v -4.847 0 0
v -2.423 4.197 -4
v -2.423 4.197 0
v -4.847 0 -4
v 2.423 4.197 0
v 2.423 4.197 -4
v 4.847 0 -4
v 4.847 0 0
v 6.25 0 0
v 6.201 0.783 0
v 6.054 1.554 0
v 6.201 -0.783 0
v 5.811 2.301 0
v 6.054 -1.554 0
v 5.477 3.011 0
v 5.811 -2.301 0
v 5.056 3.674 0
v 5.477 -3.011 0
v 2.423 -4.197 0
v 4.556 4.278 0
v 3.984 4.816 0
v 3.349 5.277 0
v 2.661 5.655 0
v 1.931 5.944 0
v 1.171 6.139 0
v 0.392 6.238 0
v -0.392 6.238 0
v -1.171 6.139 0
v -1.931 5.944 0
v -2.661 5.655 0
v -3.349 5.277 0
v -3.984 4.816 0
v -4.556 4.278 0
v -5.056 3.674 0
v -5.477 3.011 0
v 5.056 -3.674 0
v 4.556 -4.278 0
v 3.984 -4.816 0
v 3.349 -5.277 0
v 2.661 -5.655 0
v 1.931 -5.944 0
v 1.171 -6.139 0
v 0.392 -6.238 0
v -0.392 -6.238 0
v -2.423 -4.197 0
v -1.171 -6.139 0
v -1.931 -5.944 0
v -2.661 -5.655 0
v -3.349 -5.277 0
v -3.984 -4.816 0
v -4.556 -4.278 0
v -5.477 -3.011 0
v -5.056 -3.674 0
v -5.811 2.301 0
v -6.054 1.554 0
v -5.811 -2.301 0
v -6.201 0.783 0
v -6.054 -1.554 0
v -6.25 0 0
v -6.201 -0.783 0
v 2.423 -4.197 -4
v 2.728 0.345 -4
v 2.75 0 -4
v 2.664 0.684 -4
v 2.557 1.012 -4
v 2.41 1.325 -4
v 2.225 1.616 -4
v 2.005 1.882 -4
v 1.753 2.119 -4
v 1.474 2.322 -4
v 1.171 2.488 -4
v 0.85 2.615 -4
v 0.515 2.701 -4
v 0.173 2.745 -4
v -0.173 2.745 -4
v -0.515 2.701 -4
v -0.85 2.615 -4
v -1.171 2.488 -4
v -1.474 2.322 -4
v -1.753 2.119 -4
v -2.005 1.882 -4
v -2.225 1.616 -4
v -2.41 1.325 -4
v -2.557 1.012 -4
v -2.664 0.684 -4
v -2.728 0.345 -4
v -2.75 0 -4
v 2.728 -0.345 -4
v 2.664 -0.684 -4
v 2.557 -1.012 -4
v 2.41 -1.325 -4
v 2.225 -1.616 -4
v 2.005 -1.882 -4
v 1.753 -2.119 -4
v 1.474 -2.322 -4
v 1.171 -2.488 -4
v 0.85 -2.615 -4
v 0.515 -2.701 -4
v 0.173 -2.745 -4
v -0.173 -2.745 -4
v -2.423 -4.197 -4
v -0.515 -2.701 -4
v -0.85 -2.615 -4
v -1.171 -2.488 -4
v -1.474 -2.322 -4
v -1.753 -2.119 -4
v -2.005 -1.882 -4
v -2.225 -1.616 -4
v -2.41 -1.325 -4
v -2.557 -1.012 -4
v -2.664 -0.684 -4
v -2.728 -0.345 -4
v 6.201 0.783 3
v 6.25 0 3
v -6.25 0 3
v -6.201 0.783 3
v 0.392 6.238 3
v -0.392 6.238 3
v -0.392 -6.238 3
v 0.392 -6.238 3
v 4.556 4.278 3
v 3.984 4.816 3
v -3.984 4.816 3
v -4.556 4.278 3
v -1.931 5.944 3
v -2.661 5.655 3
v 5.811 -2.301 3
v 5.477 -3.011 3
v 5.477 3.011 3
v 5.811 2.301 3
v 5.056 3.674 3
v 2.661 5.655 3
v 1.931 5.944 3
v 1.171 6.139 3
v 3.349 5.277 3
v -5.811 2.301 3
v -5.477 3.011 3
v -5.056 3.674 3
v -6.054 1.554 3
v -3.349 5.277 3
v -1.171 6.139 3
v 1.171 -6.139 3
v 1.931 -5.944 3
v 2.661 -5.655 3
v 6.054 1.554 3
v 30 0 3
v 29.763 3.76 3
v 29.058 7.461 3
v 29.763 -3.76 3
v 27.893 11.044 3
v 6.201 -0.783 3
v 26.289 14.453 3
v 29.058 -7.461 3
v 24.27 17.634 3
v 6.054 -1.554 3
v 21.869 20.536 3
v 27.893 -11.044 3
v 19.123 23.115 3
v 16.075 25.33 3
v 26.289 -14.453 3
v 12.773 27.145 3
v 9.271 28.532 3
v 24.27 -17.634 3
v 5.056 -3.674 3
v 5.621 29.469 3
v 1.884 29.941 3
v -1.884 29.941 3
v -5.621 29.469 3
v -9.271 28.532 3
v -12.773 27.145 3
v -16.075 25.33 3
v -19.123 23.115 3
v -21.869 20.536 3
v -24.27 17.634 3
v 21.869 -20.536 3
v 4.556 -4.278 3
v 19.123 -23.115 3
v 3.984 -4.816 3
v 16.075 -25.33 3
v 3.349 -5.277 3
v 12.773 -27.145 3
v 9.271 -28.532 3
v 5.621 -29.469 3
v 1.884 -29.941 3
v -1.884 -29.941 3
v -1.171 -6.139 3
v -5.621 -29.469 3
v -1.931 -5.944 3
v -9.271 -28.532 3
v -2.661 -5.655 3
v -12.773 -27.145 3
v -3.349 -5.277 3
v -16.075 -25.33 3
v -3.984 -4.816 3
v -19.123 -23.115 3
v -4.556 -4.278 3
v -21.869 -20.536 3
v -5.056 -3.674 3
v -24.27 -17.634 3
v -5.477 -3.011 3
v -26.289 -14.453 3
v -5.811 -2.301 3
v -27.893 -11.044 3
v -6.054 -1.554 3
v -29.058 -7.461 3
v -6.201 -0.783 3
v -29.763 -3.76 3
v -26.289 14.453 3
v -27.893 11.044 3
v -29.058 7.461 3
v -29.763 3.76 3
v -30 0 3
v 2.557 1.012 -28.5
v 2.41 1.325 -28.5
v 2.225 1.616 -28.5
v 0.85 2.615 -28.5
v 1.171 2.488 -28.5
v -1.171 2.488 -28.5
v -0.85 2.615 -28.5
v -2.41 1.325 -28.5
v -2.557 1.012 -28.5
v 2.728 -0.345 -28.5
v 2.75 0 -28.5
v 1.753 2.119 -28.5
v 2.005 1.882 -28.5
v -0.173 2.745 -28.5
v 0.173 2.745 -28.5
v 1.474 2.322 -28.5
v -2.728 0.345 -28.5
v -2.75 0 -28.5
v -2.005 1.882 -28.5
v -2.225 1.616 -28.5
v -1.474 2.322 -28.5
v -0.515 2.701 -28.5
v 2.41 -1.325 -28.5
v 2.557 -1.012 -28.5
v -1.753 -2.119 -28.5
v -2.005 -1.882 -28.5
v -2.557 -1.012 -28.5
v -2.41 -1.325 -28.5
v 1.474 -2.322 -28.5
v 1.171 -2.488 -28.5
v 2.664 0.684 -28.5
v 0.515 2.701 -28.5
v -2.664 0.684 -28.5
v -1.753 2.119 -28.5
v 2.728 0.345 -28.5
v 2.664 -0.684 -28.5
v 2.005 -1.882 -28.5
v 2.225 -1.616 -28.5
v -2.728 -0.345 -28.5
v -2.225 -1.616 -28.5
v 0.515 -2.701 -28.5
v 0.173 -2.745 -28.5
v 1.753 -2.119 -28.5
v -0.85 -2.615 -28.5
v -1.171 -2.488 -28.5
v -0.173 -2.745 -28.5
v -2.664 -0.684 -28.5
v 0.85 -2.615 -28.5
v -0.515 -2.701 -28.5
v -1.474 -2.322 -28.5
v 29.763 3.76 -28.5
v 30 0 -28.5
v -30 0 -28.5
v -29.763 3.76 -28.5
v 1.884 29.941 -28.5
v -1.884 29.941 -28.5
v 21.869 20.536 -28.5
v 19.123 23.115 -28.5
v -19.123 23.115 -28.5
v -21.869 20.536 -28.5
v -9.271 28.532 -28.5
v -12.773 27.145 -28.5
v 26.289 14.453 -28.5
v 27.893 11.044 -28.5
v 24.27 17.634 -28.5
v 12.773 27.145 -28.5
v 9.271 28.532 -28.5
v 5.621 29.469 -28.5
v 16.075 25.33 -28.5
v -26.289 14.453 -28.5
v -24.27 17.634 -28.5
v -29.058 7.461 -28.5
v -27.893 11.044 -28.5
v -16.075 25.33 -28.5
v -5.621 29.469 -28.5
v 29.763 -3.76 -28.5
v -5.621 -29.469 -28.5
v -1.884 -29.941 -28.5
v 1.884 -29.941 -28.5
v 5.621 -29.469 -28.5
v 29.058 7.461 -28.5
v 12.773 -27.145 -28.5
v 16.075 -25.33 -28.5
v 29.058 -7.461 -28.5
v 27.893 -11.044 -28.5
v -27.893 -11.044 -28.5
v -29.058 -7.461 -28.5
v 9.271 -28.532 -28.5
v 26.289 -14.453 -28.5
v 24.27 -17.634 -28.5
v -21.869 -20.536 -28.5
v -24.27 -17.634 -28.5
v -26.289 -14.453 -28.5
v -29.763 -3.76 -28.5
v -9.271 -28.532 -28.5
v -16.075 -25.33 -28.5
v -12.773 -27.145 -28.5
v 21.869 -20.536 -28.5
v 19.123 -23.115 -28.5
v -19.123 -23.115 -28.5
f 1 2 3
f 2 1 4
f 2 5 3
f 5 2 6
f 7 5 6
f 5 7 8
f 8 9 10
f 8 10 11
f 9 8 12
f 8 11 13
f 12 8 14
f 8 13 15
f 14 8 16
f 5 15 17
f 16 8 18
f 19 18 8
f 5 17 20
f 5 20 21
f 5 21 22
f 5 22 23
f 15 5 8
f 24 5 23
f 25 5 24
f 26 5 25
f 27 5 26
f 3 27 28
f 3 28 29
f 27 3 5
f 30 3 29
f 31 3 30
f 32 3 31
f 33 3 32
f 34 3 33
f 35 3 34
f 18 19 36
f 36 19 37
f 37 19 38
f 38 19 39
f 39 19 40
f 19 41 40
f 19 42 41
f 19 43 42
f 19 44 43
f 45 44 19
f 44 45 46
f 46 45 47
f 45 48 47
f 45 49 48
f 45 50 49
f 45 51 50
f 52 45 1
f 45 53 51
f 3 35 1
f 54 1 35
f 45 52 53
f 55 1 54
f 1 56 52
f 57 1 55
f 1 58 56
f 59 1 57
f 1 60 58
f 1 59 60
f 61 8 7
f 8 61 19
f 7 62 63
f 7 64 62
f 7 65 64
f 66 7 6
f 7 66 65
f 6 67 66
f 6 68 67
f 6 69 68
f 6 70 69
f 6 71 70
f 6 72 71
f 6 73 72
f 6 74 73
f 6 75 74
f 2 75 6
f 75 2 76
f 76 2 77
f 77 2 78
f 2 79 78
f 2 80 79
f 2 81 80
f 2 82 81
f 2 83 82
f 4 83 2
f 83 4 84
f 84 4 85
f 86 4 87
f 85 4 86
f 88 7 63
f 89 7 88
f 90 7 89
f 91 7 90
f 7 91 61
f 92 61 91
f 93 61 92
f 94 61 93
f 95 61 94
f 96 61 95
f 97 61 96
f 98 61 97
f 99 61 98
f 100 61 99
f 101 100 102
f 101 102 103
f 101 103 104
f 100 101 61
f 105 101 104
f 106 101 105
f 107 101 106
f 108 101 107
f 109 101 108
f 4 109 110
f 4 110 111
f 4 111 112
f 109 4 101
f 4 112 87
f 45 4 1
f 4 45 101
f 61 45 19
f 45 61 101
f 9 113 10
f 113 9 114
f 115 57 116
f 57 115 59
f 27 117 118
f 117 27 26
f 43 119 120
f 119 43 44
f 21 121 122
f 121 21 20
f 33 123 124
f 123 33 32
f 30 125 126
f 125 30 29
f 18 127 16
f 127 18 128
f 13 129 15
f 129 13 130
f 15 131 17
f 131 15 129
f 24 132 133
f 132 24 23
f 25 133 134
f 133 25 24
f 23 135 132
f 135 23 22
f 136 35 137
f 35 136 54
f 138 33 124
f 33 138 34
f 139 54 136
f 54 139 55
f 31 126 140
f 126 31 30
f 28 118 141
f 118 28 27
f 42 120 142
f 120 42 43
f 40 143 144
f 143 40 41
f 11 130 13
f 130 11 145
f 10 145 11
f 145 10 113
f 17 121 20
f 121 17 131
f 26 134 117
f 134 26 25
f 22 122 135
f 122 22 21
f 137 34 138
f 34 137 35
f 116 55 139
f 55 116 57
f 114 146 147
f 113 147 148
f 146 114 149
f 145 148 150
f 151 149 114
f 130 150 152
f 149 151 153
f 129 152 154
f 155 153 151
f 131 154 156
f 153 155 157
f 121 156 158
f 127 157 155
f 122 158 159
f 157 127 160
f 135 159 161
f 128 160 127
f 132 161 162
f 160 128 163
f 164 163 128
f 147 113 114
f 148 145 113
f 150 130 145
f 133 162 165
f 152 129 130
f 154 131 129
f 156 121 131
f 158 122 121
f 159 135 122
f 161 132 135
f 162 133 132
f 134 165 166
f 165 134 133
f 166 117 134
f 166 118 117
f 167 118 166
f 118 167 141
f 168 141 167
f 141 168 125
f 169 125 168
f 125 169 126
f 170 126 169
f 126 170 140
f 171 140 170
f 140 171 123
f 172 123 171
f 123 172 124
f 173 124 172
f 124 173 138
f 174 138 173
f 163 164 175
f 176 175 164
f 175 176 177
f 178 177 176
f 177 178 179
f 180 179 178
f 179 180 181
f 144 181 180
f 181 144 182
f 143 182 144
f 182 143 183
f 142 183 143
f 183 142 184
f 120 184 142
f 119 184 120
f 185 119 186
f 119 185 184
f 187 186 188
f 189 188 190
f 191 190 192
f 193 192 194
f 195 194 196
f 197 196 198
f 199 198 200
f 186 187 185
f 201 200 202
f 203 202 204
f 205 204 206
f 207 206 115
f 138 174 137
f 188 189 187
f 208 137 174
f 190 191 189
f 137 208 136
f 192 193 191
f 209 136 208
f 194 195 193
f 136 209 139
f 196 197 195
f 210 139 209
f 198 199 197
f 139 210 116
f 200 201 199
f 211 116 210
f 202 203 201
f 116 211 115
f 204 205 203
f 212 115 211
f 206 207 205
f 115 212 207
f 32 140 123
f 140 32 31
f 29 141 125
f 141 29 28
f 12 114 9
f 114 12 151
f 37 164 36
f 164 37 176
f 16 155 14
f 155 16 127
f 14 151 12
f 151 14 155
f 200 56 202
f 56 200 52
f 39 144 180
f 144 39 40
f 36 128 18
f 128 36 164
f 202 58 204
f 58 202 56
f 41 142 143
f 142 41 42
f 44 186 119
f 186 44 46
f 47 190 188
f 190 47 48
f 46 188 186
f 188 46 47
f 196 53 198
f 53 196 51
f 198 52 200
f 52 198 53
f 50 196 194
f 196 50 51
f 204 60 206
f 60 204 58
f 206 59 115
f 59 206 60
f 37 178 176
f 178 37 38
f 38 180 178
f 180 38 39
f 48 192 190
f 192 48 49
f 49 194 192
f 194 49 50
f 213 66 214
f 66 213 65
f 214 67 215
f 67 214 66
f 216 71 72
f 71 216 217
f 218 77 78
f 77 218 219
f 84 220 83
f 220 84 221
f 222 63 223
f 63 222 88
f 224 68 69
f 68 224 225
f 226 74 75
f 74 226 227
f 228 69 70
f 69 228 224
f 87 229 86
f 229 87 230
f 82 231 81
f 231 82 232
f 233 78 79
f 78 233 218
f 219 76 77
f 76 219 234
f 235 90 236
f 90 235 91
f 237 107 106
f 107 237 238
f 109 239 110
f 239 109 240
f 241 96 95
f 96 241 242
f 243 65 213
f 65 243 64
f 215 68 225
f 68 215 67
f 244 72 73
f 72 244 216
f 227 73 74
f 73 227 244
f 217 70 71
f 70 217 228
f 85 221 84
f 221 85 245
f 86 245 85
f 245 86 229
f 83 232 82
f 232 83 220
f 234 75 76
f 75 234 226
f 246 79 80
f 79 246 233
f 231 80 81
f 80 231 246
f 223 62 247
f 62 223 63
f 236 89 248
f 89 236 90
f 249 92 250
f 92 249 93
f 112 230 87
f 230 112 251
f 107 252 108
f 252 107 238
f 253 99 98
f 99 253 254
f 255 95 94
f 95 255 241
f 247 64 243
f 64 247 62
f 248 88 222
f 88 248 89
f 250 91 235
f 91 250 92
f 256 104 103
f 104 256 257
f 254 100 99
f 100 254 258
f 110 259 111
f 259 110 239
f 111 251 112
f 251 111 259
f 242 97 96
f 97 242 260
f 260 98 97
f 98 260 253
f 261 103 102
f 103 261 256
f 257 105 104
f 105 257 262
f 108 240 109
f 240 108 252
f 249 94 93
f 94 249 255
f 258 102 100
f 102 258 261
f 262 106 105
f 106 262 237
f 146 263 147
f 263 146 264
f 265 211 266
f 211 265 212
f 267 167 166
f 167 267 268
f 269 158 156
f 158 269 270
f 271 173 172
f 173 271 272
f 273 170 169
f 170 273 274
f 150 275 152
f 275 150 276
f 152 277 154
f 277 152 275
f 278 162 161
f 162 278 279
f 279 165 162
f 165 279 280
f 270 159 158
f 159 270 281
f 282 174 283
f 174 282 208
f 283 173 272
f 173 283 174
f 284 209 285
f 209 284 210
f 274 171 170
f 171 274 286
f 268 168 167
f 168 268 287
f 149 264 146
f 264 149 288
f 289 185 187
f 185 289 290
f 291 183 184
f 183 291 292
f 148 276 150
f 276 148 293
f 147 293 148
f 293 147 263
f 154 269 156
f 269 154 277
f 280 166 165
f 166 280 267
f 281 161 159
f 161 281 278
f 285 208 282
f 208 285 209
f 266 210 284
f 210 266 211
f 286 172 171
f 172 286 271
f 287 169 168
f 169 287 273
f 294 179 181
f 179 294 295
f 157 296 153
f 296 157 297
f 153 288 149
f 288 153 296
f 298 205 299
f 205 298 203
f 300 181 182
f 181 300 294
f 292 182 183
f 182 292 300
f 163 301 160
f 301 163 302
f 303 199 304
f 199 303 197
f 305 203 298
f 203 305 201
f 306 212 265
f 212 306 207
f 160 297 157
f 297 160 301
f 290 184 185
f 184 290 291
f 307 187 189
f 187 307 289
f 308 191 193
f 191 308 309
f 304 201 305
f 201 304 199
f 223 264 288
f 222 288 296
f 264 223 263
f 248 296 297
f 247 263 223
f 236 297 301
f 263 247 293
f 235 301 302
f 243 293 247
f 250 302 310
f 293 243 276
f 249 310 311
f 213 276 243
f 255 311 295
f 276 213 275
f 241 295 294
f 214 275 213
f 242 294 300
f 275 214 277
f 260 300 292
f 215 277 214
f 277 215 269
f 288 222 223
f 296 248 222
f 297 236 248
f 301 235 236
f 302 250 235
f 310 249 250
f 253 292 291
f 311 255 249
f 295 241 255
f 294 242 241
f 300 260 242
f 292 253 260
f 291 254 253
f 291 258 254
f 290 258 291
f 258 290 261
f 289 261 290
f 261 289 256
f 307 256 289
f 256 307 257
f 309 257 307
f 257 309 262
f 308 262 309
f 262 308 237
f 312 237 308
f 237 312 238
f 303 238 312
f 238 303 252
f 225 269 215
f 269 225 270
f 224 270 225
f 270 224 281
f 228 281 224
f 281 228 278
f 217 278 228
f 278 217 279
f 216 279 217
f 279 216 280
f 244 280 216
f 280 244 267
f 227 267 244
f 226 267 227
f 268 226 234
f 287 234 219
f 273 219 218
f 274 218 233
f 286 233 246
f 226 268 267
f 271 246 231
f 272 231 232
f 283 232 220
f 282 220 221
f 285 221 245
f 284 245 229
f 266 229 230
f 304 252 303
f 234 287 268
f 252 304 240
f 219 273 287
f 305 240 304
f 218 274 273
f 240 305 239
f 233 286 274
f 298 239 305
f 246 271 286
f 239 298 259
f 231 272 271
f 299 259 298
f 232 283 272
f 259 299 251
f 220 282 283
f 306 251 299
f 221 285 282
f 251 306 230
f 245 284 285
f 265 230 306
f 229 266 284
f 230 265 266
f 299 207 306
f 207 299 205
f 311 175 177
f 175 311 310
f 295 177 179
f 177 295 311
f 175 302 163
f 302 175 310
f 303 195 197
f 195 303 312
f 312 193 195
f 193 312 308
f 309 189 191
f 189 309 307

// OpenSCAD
$fn = 50;


difference() {
	union() {
		translate(v = [0, 0, -28.5000000000]) {
			cylinder(h = 31.5000000000, r = 30.0000000000);
		}
	}
	union() {
		translate(v = [0, 0, 0]) {
			rotate(a = [0, 0, 0]) {
				difference() {
					union() {
						translate(v = [0, 0, -4]) {
							linear_extrude(height = 4) {
								polygon(points = [[4.8468000000, 0.0000000000], [2.4234000000, 4.1974519271], [-2.4234000000, 4.1974519271], [-4.8468000000, 0.0000000000], [-2.4234000000, -4.1974519271], [2.4234000000, -4.1974519271]]);
							}
						}
					}
					union();
				}
			}
		}
		#cylinder(h = 3, r = 6.2500000000);
		#translate(v = [0, 0, -100.0000000000]) {
			cylinder(h = 200, r = 2.7500000000);
		}
	}
}
